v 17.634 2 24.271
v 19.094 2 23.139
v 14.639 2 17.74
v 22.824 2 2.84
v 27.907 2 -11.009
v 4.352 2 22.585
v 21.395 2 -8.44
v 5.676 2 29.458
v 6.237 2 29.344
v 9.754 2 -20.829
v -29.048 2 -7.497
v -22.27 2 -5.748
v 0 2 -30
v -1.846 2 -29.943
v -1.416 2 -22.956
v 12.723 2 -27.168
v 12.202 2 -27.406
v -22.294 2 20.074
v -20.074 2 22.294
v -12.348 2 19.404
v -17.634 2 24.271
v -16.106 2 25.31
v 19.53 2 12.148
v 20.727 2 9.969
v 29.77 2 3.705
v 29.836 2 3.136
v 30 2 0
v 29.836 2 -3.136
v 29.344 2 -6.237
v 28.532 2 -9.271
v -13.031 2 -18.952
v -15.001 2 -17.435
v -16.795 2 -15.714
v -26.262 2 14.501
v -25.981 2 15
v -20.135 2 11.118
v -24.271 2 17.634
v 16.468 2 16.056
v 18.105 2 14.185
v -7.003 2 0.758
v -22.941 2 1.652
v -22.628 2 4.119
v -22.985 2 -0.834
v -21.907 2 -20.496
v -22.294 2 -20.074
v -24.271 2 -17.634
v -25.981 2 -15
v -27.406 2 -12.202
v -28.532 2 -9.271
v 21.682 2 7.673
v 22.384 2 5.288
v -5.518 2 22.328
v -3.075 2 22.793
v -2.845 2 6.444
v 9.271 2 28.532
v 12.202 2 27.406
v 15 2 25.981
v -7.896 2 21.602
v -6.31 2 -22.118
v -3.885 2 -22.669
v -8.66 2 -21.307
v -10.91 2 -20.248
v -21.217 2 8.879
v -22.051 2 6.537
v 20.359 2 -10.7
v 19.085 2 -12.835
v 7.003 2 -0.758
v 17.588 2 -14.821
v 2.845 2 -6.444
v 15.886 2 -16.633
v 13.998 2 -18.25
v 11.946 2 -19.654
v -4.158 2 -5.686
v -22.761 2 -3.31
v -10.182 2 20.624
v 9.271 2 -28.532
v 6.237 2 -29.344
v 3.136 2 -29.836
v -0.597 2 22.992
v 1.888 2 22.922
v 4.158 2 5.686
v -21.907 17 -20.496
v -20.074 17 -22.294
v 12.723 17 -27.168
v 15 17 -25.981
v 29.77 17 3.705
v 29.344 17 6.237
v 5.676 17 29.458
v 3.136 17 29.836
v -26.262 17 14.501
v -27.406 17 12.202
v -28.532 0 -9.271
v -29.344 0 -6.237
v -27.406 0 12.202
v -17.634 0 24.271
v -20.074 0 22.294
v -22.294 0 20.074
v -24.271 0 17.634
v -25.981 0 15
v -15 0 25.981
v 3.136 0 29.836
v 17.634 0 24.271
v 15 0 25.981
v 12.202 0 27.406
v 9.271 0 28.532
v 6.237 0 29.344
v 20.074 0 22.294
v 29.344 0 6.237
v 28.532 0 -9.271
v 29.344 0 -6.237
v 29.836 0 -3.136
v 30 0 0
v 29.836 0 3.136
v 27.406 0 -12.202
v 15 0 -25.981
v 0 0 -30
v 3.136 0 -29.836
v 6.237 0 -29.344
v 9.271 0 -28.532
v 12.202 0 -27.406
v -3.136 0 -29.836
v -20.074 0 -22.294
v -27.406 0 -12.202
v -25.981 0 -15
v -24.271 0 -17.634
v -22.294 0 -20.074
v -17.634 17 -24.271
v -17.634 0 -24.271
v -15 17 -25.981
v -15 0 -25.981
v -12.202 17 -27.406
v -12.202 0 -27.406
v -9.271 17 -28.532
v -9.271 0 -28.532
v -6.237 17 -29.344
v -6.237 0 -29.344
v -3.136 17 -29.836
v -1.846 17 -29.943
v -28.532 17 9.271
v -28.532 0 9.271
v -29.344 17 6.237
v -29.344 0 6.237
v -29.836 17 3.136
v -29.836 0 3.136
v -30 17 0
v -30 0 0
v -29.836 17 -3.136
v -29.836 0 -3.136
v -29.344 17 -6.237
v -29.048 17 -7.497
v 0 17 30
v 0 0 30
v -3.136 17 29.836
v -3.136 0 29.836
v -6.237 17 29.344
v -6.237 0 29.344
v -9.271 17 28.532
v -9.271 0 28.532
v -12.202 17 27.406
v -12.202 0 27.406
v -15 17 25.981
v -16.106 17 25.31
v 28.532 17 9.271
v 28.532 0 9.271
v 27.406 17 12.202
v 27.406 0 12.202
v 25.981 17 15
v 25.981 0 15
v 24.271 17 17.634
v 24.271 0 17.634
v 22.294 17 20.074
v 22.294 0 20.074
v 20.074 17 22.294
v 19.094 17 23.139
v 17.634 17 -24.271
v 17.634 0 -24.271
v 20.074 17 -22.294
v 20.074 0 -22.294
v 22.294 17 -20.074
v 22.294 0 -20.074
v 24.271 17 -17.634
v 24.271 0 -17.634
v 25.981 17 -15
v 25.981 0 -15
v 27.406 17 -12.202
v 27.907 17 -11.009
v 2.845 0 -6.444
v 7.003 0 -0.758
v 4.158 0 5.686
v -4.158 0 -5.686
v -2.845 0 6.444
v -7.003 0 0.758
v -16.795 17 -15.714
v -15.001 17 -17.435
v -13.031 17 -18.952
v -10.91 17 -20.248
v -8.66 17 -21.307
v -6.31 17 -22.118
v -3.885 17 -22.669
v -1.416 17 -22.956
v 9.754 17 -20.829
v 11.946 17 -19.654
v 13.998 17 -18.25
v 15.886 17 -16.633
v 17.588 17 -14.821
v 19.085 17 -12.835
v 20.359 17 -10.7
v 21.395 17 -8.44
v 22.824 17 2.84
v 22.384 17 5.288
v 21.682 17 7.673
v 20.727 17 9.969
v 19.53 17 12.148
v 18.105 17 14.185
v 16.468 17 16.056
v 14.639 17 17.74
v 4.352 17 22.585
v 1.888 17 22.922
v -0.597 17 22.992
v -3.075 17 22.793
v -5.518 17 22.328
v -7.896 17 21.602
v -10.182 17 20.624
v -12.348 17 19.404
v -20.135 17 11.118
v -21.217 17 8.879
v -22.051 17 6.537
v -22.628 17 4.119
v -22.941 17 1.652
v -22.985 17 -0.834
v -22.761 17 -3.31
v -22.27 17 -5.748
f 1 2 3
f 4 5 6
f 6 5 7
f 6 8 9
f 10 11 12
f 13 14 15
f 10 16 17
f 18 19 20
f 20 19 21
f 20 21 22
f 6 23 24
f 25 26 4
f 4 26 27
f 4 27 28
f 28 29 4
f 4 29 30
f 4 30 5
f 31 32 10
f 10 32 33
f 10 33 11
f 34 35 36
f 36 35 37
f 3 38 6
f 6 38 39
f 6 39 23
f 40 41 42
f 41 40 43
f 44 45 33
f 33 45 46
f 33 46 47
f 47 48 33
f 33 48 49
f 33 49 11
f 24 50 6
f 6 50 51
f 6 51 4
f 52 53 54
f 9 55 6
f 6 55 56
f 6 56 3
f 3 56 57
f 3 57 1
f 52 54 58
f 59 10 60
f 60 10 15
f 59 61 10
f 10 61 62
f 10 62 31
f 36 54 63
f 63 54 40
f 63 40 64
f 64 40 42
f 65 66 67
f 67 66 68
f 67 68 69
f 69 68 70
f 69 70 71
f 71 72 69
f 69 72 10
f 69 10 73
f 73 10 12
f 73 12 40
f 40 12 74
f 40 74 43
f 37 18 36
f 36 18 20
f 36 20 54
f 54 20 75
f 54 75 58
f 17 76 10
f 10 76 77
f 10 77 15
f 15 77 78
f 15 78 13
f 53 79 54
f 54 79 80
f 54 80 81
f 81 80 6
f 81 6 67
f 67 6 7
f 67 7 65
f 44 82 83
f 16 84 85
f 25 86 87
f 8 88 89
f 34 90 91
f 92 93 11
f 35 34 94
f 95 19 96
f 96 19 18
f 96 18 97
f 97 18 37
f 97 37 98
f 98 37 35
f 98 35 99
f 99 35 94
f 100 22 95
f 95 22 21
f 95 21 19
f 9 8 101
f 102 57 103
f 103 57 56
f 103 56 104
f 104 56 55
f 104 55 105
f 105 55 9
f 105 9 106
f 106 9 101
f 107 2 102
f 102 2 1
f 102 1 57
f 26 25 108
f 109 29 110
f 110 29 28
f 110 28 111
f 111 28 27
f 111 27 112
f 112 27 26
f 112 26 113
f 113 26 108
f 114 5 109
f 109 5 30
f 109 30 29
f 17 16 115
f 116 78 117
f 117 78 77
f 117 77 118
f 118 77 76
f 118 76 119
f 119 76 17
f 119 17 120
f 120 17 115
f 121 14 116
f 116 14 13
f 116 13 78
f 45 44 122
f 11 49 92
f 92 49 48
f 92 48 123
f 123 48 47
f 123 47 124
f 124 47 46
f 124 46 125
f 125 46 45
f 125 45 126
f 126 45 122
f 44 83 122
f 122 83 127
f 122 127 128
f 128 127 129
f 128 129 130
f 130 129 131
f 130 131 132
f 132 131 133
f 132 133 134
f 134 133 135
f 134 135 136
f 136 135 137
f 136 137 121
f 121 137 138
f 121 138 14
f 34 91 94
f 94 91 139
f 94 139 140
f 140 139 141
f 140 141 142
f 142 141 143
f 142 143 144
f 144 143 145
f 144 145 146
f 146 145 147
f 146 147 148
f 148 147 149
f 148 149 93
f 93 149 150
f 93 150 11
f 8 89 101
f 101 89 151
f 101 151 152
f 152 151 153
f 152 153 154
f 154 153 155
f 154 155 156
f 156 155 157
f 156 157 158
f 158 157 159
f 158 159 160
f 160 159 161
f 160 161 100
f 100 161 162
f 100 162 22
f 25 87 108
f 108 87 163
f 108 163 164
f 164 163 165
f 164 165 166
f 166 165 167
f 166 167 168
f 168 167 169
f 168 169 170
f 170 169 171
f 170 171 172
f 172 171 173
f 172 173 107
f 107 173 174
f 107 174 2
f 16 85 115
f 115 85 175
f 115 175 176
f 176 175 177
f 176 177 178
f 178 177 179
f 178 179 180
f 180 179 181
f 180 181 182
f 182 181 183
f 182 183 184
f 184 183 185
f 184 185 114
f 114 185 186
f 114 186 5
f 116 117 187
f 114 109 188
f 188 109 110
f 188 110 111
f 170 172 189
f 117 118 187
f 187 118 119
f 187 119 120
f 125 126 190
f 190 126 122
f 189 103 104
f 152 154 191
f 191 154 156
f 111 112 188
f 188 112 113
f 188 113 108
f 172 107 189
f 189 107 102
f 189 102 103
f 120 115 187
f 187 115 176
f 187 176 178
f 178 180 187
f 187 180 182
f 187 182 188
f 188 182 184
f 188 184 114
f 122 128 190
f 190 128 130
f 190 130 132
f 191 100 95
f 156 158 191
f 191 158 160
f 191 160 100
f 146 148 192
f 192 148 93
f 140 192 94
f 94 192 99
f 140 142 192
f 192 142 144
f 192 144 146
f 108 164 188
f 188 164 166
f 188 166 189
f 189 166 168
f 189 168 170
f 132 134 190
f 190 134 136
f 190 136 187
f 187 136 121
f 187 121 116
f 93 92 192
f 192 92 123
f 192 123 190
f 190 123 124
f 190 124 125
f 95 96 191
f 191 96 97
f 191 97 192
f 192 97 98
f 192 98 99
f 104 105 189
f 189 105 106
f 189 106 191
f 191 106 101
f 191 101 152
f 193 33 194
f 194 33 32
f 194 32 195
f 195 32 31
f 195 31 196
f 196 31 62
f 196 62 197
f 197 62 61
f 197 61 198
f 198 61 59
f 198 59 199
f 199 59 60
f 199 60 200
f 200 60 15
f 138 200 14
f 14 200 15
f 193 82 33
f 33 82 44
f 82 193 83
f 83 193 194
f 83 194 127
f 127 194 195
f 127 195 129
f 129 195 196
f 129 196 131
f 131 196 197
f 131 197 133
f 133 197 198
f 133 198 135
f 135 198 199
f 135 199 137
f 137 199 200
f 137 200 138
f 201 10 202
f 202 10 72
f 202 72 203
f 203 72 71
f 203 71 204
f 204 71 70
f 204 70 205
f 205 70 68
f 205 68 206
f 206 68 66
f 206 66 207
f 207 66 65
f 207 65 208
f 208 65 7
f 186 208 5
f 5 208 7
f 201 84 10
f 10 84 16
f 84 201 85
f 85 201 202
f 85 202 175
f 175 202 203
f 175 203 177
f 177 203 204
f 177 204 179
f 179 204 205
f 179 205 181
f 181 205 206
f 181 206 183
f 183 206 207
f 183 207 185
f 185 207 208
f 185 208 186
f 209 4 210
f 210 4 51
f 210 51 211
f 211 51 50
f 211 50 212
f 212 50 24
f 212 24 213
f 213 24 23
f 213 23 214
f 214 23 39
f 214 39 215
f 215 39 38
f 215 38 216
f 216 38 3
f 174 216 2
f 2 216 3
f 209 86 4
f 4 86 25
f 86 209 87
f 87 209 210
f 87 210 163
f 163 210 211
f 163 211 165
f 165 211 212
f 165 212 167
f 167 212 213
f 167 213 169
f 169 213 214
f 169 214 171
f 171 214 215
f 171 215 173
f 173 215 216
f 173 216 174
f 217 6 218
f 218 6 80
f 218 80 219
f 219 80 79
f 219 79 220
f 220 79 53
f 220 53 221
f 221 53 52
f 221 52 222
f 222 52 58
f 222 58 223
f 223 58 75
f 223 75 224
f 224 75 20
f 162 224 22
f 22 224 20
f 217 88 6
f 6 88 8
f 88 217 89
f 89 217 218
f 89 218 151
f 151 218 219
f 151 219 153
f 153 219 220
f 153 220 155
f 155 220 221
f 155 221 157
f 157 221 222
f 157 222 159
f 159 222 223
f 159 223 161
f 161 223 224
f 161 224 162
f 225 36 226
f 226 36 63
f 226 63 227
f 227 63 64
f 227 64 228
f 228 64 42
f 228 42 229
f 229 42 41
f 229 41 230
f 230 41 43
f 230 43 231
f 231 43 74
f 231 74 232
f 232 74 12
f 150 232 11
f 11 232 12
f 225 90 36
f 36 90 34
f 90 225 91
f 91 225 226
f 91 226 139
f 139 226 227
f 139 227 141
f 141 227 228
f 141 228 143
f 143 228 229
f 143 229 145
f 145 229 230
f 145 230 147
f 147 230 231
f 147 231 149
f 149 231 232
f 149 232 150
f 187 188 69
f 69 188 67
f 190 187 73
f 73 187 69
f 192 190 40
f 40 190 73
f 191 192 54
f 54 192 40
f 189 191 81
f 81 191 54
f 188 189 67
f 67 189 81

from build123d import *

# Parameters (mm, degrees)
SKETCH3_R           = 30
BOSS_EXTRUDE3_DEPTH = 2
BOSS_EXTRUDE4_DEPTH = 15
CUT_EXTRUDE1_DEPTH  = 10


with BuildPart() as part:
    # Sketch3 → Boss-Extrude3 (new body)
    with BuildSketch(Plane(origin=(0, 0, 0), x_dir=(1, 0, 0), z_dir=(0, 1, 0))):
        with Locations(Location((0, 0, 0), (0, 0, 270))):
            Circle(SKETCH3_R)
    extrude(amount=BOSS_EXTRUDE3_DEPTH)

    # Sketch4 → Boss-Extrude4 (add)
    with BuildSketch(Plane(origin=(0, 2, 0), x_dir=(1, 0, 0), z_dir=(0, 1, 0))):
        with BuildLine():
            Line((14.638601317, -17.740105735), (19.093827805, -23.13926835))
            ThreePointArc((19.093827805, -23.13926835), (26.293545079, -14.444704468), (29.770348498, -3.704908943))
            Line((29.770348498, -3.704908943), (22.823933849, -2.84043019))
            ThreePointArc((22.823933849, -2.84043019), (20.158384561, -11.074273425), (14.638601317, -17.740105735))
        make_face()
        with BuildLine():
            Line((21.39541974, 8.440143018), (27.907069226, 11.008882197))
            ThreePointArc((27.907069226, 11.008882197), (21.862882582, 20.542988225), (12.723121407, 27.168404106))
            Line((12.723121407, 27.168404106), (9.754393079, 20.829109814))
            ThreePointArc((9.754393079, 20.829109814), (16.761543313, 15.749624306), (21.39541974, 8.440143018))
        make_face()
        with BuildLine():
            Line((-1.415504714, 22.95640099), (-1.846310497, 29.943131726))
            ThreePointArc((-1.846310497, 29.943131726), (-12.781540551, 27.140969421), (-21.907027026, 20.495906101))
            Line((-21.907027026, 20.495906101), (-16.795387386, 15.713528011))
            ThreePointArc((-16.795387386, 15.713528011), (-9.799181089, 20.808076556), (-1.415504714, 22.95640099))
        make_face()
        with BuildLine():
            Line((-22.270249764, 5.747693053), (-29.048151867, 7.496990939))
            ThreePointArc((-29.048151867, 7.496990939), (-29.762309071, -3.768946635), (-26.262408702, -14.501237505))
            Line((-26.262408702, -14.501237505), (-20.134513338, -11.117615421))
            ThreePointArc((-20.134513338, -11.117615421), (-22.817770288, -2.889525753), (-22.270249764, 5.747693053))
        make_face()
        with BuildLine():
            Line((-12.348266578, -19.404131326), (-16.106434667, -25.309736512))
            ThreePointArc((-16.106434667, -25.309736512), (-5.612578038, -29.470306543), (5.675965822, -29.458163758))
            Line((5.675965822, -29.458163758), (4.351573797, -22.584592214))
            ThreePointArc((4.351573797, -22.584592214), (-4.302976496, -22.593901683), (-12.348266578, -19.404131326))
        make_face()
    extrude(amount=BOSS_EXTRUDE4_DEPTH)

    # Sketch5 → Cut-Extrude1 (cut)
    with BuildSketch(Plane.XZ):
        Polygon((7.002775602, -0.757936148), (4.157779759, 5.685613494), (-2.844995843, 6.443549642), (-7.002775602, 0.757936148), (-4.157779759, -5.685613494), (2.844995843, -6.443549642), align=None)
    extrude(amount=-CUT_EXTRUDE1_DEPTH, mode=Mode.SUBTRACT)


solid = part.part
